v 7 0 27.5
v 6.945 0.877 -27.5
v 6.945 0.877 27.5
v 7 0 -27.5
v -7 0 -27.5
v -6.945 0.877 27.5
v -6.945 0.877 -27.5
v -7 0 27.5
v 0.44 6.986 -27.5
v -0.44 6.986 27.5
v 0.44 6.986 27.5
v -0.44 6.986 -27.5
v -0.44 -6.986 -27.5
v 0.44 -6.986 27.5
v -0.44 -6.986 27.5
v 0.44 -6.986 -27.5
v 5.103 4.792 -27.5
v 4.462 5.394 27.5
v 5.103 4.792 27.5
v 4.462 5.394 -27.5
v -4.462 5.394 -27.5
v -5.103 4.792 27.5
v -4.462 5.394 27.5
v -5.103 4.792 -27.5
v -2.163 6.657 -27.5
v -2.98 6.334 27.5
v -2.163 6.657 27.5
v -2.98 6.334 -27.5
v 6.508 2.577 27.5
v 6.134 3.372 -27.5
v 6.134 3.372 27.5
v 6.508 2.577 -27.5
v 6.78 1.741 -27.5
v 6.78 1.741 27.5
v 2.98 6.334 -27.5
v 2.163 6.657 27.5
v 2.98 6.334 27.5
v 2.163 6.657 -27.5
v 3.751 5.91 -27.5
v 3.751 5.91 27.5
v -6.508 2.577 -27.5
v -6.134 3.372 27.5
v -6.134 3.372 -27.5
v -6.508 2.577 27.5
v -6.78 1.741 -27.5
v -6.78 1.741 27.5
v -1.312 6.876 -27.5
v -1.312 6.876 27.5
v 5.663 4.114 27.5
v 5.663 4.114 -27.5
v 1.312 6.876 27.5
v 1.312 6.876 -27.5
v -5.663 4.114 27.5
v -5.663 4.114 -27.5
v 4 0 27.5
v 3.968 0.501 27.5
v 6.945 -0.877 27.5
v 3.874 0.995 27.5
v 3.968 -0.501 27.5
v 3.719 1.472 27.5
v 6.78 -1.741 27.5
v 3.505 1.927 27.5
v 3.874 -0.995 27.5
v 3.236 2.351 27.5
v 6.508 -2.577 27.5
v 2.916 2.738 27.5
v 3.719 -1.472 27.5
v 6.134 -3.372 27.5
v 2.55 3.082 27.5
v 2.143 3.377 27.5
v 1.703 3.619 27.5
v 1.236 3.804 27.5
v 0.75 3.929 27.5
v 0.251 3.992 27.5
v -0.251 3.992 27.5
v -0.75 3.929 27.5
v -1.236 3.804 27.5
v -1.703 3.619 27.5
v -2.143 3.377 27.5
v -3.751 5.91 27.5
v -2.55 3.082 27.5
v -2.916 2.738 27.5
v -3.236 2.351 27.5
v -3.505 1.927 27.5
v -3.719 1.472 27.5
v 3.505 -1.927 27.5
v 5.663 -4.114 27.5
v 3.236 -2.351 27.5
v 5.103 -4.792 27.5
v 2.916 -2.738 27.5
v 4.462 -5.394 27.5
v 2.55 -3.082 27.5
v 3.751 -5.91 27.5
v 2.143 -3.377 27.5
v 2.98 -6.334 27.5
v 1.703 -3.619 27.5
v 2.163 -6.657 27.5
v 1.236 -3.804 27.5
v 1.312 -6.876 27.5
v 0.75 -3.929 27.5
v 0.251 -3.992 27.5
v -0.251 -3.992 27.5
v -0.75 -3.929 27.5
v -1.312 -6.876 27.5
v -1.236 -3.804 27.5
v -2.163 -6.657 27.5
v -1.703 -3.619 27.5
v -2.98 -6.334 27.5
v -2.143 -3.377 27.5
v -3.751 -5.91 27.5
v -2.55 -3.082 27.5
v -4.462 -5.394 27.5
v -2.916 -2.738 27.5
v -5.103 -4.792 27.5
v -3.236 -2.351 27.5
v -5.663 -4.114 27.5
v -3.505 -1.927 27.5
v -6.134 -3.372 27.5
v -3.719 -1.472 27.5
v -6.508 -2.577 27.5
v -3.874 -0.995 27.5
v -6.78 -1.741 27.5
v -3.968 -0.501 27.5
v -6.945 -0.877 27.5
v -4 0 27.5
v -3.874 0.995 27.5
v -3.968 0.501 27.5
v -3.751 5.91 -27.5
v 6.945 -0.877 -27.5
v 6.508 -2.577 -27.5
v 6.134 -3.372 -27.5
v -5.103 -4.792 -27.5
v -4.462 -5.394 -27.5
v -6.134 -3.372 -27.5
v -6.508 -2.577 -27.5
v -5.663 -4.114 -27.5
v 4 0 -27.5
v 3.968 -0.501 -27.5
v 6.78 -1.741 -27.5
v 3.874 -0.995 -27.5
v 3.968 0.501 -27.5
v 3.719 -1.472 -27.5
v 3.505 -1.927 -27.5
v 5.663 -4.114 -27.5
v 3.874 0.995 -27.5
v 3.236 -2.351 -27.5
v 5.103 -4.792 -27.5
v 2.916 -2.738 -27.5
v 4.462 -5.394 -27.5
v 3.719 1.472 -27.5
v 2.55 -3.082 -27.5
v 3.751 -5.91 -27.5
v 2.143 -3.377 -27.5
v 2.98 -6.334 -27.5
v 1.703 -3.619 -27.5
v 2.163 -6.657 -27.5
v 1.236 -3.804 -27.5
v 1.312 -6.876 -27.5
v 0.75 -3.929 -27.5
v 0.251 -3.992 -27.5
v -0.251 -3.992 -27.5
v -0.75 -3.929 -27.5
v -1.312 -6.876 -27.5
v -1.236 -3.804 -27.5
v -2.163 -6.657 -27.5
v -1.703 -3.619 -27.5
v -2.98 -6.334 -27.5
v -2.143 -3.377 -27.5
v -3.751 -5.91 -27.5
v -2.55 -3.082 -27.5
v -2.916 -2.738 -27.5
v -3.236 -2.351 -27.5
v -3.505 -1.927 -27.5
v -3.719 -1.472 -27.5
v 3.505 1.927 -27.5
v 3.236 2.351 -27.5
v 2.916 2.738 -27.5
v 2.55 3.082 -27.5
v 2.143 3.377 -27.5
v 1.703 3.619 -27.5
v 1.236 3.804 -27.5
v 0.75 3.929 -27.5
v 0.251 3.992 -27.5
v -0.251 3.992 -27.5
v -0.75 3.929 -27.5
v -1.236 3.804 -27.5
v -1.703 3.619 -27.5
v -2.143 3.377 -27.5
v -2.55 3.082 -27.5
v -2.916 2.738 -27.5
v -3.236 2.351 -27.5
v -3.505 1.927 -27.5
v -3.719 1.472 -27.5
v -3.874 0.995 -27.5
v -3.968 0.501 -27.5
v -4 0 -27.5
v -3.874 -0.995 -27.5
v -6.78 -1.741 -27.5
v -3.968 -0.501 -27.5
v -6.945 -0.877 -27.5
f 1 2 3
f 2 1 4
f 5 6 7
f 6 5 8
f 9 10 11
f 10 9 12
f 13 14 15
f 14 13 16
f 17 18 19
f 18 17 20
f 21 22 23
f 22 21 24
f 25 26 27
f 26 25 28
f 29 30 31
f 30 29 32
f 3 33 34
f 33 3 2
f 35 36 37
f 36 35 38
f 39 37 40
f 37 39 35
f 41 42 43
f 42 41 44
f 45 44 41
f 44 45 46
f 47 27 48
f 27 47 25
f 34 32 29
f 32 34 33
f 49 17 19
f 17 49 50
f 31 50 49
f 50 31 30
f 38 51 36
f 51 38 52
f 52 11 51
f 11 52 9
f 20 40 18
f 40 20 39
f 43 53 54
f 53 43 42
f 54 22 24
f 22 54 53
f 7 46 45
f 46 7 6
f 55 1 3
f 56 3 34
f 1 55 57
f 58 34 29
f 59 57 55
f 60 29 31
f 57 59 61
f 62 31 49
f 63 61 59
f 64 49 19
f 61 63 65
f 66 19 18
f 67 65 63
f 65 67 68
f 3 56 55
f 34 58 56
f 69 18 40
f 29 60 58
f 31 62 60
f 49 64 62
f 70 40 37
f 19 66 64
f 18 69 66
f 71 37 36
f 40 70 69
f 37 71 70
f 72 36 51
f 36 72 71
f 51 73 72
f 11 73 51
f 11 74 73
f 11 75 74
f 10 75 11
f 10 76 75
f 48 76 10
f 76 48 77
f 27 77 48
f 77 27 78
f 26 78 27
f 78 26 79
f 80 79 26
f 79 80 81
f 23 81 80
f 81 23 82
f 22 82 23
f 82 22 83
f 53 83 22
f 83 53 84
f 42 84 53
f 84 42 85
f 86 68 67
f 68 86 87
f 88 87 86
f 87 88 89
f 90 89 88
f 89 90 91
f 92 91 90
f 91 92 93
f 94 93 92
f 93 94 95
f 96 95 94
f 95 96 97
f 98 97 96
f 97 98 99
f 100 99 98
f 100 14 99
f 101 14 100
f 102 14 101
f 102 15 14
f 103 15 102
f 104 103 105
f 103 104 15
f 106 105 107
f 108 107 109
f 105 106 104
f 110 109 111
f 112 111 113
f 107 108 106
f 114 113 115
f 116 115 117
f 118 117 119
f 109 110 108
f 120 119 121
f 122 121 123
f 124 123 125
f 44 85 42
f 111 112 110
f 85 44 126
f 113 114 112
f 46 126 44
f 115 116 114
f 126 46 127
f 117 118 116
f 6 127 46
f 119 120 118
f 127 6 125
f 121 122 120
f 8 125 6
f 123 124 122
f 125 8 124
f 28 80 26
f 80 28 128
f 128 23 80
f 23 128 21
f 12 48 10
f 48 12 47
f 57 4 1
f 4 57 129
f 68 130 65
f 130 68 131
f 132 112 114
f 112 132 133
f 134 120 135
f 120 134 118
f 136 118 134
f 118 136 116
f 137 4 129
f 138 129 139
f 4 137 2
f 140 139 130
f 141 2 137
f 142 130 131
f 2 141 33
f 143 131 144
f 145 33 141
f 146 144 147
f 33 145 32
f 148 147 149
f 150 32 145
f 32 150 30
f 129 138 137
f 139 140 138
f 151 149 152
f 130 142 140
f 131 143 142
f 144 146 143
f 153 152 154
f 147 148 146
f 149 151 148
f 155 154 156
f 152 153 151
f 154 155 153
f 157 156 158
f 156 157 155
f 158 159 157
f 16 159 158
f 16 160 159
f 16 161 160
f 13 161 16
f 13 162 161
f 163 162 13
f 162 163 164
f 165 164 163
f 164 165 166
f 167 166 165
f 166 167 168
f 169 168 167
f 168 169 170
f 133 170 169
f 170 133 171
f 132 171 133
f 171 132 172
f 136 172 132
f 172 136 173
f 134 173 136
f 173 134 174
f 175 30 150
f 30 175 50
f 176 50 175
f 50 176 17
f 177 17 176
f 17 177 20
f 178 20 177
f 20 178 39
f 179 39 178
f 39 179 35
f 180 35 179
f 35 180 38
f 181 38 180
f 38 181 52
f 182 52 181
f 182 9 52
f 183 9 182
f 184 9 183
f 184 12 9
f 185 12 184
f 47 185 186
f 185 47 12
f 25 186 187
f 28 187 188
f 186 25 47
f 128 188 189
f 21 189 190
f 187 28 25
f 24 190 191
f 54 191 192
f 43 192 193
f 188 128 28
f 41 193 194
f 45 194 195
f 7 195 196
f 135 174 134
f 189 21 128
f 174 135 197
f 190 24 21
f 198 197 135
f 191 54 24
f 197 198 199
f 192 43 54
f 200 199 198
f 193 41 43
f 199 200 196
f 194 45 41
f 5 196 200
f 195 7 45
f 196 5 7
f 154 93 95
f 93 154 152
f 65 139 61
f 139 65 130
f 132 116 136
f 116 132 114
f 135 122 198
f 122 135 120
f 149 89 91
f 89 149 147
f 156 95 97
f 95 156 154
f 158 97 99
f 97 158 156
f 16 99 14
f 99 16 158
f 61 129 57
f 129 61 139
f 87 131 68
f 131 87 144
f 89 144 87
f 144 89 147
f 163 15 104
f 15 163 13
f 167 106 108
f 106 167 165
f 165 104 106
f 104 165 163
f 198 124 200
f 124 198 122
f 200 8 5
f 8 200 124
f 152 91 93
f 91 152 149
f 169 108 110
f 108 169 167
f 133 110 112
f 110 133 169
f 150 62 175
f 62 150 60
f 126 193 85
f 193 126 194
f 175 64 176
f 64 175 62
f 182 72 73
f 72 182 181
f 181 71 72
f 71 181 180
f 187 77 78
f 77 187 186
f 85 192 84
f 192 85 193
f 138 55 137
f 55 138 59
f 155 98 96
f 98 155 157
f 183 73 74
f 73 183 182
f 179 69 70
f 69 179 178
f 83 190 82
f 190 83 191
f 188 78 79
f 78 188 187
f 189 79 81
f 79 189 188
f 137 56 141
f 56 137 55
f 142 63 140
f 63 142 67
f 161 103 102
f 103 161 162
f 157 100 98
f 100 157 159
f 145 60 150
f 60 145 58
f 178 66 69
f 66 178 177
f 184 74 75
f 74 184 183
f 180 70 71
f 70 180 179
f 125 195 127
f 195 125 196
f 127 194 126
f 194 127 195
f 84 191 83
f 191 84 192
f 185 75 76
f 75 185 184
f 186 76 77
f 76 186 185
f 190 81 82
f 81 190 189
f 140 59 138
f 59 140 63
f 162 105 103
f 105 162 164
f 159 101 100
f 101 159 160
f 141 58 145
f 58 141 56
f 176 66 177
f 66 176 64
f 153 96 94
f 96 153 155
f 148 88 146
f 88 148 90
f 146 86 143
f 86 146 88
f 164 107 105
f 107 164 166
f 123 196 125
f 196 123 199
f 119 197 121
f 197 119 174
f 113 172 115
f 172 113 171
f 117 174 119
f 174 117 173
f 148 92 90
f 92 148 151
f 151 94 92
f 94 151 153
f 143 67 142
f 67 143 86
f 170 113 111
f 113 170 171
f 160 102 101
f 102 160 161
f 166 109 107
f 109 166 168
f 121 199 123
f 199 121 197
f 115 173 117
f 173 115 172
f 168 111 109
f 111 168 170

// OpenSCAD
$fn = 50;


difference() {
	union() {
		translate(v = [0, 0, -27.5000000000]) {
			cylinder(h = 55, r = 7.0000000000);
		}
	}
	union() {
		translate(v = [0, 0, -100.0000000000]) {
			cylinder(h = 200, r = 4);
		}
	}
}
